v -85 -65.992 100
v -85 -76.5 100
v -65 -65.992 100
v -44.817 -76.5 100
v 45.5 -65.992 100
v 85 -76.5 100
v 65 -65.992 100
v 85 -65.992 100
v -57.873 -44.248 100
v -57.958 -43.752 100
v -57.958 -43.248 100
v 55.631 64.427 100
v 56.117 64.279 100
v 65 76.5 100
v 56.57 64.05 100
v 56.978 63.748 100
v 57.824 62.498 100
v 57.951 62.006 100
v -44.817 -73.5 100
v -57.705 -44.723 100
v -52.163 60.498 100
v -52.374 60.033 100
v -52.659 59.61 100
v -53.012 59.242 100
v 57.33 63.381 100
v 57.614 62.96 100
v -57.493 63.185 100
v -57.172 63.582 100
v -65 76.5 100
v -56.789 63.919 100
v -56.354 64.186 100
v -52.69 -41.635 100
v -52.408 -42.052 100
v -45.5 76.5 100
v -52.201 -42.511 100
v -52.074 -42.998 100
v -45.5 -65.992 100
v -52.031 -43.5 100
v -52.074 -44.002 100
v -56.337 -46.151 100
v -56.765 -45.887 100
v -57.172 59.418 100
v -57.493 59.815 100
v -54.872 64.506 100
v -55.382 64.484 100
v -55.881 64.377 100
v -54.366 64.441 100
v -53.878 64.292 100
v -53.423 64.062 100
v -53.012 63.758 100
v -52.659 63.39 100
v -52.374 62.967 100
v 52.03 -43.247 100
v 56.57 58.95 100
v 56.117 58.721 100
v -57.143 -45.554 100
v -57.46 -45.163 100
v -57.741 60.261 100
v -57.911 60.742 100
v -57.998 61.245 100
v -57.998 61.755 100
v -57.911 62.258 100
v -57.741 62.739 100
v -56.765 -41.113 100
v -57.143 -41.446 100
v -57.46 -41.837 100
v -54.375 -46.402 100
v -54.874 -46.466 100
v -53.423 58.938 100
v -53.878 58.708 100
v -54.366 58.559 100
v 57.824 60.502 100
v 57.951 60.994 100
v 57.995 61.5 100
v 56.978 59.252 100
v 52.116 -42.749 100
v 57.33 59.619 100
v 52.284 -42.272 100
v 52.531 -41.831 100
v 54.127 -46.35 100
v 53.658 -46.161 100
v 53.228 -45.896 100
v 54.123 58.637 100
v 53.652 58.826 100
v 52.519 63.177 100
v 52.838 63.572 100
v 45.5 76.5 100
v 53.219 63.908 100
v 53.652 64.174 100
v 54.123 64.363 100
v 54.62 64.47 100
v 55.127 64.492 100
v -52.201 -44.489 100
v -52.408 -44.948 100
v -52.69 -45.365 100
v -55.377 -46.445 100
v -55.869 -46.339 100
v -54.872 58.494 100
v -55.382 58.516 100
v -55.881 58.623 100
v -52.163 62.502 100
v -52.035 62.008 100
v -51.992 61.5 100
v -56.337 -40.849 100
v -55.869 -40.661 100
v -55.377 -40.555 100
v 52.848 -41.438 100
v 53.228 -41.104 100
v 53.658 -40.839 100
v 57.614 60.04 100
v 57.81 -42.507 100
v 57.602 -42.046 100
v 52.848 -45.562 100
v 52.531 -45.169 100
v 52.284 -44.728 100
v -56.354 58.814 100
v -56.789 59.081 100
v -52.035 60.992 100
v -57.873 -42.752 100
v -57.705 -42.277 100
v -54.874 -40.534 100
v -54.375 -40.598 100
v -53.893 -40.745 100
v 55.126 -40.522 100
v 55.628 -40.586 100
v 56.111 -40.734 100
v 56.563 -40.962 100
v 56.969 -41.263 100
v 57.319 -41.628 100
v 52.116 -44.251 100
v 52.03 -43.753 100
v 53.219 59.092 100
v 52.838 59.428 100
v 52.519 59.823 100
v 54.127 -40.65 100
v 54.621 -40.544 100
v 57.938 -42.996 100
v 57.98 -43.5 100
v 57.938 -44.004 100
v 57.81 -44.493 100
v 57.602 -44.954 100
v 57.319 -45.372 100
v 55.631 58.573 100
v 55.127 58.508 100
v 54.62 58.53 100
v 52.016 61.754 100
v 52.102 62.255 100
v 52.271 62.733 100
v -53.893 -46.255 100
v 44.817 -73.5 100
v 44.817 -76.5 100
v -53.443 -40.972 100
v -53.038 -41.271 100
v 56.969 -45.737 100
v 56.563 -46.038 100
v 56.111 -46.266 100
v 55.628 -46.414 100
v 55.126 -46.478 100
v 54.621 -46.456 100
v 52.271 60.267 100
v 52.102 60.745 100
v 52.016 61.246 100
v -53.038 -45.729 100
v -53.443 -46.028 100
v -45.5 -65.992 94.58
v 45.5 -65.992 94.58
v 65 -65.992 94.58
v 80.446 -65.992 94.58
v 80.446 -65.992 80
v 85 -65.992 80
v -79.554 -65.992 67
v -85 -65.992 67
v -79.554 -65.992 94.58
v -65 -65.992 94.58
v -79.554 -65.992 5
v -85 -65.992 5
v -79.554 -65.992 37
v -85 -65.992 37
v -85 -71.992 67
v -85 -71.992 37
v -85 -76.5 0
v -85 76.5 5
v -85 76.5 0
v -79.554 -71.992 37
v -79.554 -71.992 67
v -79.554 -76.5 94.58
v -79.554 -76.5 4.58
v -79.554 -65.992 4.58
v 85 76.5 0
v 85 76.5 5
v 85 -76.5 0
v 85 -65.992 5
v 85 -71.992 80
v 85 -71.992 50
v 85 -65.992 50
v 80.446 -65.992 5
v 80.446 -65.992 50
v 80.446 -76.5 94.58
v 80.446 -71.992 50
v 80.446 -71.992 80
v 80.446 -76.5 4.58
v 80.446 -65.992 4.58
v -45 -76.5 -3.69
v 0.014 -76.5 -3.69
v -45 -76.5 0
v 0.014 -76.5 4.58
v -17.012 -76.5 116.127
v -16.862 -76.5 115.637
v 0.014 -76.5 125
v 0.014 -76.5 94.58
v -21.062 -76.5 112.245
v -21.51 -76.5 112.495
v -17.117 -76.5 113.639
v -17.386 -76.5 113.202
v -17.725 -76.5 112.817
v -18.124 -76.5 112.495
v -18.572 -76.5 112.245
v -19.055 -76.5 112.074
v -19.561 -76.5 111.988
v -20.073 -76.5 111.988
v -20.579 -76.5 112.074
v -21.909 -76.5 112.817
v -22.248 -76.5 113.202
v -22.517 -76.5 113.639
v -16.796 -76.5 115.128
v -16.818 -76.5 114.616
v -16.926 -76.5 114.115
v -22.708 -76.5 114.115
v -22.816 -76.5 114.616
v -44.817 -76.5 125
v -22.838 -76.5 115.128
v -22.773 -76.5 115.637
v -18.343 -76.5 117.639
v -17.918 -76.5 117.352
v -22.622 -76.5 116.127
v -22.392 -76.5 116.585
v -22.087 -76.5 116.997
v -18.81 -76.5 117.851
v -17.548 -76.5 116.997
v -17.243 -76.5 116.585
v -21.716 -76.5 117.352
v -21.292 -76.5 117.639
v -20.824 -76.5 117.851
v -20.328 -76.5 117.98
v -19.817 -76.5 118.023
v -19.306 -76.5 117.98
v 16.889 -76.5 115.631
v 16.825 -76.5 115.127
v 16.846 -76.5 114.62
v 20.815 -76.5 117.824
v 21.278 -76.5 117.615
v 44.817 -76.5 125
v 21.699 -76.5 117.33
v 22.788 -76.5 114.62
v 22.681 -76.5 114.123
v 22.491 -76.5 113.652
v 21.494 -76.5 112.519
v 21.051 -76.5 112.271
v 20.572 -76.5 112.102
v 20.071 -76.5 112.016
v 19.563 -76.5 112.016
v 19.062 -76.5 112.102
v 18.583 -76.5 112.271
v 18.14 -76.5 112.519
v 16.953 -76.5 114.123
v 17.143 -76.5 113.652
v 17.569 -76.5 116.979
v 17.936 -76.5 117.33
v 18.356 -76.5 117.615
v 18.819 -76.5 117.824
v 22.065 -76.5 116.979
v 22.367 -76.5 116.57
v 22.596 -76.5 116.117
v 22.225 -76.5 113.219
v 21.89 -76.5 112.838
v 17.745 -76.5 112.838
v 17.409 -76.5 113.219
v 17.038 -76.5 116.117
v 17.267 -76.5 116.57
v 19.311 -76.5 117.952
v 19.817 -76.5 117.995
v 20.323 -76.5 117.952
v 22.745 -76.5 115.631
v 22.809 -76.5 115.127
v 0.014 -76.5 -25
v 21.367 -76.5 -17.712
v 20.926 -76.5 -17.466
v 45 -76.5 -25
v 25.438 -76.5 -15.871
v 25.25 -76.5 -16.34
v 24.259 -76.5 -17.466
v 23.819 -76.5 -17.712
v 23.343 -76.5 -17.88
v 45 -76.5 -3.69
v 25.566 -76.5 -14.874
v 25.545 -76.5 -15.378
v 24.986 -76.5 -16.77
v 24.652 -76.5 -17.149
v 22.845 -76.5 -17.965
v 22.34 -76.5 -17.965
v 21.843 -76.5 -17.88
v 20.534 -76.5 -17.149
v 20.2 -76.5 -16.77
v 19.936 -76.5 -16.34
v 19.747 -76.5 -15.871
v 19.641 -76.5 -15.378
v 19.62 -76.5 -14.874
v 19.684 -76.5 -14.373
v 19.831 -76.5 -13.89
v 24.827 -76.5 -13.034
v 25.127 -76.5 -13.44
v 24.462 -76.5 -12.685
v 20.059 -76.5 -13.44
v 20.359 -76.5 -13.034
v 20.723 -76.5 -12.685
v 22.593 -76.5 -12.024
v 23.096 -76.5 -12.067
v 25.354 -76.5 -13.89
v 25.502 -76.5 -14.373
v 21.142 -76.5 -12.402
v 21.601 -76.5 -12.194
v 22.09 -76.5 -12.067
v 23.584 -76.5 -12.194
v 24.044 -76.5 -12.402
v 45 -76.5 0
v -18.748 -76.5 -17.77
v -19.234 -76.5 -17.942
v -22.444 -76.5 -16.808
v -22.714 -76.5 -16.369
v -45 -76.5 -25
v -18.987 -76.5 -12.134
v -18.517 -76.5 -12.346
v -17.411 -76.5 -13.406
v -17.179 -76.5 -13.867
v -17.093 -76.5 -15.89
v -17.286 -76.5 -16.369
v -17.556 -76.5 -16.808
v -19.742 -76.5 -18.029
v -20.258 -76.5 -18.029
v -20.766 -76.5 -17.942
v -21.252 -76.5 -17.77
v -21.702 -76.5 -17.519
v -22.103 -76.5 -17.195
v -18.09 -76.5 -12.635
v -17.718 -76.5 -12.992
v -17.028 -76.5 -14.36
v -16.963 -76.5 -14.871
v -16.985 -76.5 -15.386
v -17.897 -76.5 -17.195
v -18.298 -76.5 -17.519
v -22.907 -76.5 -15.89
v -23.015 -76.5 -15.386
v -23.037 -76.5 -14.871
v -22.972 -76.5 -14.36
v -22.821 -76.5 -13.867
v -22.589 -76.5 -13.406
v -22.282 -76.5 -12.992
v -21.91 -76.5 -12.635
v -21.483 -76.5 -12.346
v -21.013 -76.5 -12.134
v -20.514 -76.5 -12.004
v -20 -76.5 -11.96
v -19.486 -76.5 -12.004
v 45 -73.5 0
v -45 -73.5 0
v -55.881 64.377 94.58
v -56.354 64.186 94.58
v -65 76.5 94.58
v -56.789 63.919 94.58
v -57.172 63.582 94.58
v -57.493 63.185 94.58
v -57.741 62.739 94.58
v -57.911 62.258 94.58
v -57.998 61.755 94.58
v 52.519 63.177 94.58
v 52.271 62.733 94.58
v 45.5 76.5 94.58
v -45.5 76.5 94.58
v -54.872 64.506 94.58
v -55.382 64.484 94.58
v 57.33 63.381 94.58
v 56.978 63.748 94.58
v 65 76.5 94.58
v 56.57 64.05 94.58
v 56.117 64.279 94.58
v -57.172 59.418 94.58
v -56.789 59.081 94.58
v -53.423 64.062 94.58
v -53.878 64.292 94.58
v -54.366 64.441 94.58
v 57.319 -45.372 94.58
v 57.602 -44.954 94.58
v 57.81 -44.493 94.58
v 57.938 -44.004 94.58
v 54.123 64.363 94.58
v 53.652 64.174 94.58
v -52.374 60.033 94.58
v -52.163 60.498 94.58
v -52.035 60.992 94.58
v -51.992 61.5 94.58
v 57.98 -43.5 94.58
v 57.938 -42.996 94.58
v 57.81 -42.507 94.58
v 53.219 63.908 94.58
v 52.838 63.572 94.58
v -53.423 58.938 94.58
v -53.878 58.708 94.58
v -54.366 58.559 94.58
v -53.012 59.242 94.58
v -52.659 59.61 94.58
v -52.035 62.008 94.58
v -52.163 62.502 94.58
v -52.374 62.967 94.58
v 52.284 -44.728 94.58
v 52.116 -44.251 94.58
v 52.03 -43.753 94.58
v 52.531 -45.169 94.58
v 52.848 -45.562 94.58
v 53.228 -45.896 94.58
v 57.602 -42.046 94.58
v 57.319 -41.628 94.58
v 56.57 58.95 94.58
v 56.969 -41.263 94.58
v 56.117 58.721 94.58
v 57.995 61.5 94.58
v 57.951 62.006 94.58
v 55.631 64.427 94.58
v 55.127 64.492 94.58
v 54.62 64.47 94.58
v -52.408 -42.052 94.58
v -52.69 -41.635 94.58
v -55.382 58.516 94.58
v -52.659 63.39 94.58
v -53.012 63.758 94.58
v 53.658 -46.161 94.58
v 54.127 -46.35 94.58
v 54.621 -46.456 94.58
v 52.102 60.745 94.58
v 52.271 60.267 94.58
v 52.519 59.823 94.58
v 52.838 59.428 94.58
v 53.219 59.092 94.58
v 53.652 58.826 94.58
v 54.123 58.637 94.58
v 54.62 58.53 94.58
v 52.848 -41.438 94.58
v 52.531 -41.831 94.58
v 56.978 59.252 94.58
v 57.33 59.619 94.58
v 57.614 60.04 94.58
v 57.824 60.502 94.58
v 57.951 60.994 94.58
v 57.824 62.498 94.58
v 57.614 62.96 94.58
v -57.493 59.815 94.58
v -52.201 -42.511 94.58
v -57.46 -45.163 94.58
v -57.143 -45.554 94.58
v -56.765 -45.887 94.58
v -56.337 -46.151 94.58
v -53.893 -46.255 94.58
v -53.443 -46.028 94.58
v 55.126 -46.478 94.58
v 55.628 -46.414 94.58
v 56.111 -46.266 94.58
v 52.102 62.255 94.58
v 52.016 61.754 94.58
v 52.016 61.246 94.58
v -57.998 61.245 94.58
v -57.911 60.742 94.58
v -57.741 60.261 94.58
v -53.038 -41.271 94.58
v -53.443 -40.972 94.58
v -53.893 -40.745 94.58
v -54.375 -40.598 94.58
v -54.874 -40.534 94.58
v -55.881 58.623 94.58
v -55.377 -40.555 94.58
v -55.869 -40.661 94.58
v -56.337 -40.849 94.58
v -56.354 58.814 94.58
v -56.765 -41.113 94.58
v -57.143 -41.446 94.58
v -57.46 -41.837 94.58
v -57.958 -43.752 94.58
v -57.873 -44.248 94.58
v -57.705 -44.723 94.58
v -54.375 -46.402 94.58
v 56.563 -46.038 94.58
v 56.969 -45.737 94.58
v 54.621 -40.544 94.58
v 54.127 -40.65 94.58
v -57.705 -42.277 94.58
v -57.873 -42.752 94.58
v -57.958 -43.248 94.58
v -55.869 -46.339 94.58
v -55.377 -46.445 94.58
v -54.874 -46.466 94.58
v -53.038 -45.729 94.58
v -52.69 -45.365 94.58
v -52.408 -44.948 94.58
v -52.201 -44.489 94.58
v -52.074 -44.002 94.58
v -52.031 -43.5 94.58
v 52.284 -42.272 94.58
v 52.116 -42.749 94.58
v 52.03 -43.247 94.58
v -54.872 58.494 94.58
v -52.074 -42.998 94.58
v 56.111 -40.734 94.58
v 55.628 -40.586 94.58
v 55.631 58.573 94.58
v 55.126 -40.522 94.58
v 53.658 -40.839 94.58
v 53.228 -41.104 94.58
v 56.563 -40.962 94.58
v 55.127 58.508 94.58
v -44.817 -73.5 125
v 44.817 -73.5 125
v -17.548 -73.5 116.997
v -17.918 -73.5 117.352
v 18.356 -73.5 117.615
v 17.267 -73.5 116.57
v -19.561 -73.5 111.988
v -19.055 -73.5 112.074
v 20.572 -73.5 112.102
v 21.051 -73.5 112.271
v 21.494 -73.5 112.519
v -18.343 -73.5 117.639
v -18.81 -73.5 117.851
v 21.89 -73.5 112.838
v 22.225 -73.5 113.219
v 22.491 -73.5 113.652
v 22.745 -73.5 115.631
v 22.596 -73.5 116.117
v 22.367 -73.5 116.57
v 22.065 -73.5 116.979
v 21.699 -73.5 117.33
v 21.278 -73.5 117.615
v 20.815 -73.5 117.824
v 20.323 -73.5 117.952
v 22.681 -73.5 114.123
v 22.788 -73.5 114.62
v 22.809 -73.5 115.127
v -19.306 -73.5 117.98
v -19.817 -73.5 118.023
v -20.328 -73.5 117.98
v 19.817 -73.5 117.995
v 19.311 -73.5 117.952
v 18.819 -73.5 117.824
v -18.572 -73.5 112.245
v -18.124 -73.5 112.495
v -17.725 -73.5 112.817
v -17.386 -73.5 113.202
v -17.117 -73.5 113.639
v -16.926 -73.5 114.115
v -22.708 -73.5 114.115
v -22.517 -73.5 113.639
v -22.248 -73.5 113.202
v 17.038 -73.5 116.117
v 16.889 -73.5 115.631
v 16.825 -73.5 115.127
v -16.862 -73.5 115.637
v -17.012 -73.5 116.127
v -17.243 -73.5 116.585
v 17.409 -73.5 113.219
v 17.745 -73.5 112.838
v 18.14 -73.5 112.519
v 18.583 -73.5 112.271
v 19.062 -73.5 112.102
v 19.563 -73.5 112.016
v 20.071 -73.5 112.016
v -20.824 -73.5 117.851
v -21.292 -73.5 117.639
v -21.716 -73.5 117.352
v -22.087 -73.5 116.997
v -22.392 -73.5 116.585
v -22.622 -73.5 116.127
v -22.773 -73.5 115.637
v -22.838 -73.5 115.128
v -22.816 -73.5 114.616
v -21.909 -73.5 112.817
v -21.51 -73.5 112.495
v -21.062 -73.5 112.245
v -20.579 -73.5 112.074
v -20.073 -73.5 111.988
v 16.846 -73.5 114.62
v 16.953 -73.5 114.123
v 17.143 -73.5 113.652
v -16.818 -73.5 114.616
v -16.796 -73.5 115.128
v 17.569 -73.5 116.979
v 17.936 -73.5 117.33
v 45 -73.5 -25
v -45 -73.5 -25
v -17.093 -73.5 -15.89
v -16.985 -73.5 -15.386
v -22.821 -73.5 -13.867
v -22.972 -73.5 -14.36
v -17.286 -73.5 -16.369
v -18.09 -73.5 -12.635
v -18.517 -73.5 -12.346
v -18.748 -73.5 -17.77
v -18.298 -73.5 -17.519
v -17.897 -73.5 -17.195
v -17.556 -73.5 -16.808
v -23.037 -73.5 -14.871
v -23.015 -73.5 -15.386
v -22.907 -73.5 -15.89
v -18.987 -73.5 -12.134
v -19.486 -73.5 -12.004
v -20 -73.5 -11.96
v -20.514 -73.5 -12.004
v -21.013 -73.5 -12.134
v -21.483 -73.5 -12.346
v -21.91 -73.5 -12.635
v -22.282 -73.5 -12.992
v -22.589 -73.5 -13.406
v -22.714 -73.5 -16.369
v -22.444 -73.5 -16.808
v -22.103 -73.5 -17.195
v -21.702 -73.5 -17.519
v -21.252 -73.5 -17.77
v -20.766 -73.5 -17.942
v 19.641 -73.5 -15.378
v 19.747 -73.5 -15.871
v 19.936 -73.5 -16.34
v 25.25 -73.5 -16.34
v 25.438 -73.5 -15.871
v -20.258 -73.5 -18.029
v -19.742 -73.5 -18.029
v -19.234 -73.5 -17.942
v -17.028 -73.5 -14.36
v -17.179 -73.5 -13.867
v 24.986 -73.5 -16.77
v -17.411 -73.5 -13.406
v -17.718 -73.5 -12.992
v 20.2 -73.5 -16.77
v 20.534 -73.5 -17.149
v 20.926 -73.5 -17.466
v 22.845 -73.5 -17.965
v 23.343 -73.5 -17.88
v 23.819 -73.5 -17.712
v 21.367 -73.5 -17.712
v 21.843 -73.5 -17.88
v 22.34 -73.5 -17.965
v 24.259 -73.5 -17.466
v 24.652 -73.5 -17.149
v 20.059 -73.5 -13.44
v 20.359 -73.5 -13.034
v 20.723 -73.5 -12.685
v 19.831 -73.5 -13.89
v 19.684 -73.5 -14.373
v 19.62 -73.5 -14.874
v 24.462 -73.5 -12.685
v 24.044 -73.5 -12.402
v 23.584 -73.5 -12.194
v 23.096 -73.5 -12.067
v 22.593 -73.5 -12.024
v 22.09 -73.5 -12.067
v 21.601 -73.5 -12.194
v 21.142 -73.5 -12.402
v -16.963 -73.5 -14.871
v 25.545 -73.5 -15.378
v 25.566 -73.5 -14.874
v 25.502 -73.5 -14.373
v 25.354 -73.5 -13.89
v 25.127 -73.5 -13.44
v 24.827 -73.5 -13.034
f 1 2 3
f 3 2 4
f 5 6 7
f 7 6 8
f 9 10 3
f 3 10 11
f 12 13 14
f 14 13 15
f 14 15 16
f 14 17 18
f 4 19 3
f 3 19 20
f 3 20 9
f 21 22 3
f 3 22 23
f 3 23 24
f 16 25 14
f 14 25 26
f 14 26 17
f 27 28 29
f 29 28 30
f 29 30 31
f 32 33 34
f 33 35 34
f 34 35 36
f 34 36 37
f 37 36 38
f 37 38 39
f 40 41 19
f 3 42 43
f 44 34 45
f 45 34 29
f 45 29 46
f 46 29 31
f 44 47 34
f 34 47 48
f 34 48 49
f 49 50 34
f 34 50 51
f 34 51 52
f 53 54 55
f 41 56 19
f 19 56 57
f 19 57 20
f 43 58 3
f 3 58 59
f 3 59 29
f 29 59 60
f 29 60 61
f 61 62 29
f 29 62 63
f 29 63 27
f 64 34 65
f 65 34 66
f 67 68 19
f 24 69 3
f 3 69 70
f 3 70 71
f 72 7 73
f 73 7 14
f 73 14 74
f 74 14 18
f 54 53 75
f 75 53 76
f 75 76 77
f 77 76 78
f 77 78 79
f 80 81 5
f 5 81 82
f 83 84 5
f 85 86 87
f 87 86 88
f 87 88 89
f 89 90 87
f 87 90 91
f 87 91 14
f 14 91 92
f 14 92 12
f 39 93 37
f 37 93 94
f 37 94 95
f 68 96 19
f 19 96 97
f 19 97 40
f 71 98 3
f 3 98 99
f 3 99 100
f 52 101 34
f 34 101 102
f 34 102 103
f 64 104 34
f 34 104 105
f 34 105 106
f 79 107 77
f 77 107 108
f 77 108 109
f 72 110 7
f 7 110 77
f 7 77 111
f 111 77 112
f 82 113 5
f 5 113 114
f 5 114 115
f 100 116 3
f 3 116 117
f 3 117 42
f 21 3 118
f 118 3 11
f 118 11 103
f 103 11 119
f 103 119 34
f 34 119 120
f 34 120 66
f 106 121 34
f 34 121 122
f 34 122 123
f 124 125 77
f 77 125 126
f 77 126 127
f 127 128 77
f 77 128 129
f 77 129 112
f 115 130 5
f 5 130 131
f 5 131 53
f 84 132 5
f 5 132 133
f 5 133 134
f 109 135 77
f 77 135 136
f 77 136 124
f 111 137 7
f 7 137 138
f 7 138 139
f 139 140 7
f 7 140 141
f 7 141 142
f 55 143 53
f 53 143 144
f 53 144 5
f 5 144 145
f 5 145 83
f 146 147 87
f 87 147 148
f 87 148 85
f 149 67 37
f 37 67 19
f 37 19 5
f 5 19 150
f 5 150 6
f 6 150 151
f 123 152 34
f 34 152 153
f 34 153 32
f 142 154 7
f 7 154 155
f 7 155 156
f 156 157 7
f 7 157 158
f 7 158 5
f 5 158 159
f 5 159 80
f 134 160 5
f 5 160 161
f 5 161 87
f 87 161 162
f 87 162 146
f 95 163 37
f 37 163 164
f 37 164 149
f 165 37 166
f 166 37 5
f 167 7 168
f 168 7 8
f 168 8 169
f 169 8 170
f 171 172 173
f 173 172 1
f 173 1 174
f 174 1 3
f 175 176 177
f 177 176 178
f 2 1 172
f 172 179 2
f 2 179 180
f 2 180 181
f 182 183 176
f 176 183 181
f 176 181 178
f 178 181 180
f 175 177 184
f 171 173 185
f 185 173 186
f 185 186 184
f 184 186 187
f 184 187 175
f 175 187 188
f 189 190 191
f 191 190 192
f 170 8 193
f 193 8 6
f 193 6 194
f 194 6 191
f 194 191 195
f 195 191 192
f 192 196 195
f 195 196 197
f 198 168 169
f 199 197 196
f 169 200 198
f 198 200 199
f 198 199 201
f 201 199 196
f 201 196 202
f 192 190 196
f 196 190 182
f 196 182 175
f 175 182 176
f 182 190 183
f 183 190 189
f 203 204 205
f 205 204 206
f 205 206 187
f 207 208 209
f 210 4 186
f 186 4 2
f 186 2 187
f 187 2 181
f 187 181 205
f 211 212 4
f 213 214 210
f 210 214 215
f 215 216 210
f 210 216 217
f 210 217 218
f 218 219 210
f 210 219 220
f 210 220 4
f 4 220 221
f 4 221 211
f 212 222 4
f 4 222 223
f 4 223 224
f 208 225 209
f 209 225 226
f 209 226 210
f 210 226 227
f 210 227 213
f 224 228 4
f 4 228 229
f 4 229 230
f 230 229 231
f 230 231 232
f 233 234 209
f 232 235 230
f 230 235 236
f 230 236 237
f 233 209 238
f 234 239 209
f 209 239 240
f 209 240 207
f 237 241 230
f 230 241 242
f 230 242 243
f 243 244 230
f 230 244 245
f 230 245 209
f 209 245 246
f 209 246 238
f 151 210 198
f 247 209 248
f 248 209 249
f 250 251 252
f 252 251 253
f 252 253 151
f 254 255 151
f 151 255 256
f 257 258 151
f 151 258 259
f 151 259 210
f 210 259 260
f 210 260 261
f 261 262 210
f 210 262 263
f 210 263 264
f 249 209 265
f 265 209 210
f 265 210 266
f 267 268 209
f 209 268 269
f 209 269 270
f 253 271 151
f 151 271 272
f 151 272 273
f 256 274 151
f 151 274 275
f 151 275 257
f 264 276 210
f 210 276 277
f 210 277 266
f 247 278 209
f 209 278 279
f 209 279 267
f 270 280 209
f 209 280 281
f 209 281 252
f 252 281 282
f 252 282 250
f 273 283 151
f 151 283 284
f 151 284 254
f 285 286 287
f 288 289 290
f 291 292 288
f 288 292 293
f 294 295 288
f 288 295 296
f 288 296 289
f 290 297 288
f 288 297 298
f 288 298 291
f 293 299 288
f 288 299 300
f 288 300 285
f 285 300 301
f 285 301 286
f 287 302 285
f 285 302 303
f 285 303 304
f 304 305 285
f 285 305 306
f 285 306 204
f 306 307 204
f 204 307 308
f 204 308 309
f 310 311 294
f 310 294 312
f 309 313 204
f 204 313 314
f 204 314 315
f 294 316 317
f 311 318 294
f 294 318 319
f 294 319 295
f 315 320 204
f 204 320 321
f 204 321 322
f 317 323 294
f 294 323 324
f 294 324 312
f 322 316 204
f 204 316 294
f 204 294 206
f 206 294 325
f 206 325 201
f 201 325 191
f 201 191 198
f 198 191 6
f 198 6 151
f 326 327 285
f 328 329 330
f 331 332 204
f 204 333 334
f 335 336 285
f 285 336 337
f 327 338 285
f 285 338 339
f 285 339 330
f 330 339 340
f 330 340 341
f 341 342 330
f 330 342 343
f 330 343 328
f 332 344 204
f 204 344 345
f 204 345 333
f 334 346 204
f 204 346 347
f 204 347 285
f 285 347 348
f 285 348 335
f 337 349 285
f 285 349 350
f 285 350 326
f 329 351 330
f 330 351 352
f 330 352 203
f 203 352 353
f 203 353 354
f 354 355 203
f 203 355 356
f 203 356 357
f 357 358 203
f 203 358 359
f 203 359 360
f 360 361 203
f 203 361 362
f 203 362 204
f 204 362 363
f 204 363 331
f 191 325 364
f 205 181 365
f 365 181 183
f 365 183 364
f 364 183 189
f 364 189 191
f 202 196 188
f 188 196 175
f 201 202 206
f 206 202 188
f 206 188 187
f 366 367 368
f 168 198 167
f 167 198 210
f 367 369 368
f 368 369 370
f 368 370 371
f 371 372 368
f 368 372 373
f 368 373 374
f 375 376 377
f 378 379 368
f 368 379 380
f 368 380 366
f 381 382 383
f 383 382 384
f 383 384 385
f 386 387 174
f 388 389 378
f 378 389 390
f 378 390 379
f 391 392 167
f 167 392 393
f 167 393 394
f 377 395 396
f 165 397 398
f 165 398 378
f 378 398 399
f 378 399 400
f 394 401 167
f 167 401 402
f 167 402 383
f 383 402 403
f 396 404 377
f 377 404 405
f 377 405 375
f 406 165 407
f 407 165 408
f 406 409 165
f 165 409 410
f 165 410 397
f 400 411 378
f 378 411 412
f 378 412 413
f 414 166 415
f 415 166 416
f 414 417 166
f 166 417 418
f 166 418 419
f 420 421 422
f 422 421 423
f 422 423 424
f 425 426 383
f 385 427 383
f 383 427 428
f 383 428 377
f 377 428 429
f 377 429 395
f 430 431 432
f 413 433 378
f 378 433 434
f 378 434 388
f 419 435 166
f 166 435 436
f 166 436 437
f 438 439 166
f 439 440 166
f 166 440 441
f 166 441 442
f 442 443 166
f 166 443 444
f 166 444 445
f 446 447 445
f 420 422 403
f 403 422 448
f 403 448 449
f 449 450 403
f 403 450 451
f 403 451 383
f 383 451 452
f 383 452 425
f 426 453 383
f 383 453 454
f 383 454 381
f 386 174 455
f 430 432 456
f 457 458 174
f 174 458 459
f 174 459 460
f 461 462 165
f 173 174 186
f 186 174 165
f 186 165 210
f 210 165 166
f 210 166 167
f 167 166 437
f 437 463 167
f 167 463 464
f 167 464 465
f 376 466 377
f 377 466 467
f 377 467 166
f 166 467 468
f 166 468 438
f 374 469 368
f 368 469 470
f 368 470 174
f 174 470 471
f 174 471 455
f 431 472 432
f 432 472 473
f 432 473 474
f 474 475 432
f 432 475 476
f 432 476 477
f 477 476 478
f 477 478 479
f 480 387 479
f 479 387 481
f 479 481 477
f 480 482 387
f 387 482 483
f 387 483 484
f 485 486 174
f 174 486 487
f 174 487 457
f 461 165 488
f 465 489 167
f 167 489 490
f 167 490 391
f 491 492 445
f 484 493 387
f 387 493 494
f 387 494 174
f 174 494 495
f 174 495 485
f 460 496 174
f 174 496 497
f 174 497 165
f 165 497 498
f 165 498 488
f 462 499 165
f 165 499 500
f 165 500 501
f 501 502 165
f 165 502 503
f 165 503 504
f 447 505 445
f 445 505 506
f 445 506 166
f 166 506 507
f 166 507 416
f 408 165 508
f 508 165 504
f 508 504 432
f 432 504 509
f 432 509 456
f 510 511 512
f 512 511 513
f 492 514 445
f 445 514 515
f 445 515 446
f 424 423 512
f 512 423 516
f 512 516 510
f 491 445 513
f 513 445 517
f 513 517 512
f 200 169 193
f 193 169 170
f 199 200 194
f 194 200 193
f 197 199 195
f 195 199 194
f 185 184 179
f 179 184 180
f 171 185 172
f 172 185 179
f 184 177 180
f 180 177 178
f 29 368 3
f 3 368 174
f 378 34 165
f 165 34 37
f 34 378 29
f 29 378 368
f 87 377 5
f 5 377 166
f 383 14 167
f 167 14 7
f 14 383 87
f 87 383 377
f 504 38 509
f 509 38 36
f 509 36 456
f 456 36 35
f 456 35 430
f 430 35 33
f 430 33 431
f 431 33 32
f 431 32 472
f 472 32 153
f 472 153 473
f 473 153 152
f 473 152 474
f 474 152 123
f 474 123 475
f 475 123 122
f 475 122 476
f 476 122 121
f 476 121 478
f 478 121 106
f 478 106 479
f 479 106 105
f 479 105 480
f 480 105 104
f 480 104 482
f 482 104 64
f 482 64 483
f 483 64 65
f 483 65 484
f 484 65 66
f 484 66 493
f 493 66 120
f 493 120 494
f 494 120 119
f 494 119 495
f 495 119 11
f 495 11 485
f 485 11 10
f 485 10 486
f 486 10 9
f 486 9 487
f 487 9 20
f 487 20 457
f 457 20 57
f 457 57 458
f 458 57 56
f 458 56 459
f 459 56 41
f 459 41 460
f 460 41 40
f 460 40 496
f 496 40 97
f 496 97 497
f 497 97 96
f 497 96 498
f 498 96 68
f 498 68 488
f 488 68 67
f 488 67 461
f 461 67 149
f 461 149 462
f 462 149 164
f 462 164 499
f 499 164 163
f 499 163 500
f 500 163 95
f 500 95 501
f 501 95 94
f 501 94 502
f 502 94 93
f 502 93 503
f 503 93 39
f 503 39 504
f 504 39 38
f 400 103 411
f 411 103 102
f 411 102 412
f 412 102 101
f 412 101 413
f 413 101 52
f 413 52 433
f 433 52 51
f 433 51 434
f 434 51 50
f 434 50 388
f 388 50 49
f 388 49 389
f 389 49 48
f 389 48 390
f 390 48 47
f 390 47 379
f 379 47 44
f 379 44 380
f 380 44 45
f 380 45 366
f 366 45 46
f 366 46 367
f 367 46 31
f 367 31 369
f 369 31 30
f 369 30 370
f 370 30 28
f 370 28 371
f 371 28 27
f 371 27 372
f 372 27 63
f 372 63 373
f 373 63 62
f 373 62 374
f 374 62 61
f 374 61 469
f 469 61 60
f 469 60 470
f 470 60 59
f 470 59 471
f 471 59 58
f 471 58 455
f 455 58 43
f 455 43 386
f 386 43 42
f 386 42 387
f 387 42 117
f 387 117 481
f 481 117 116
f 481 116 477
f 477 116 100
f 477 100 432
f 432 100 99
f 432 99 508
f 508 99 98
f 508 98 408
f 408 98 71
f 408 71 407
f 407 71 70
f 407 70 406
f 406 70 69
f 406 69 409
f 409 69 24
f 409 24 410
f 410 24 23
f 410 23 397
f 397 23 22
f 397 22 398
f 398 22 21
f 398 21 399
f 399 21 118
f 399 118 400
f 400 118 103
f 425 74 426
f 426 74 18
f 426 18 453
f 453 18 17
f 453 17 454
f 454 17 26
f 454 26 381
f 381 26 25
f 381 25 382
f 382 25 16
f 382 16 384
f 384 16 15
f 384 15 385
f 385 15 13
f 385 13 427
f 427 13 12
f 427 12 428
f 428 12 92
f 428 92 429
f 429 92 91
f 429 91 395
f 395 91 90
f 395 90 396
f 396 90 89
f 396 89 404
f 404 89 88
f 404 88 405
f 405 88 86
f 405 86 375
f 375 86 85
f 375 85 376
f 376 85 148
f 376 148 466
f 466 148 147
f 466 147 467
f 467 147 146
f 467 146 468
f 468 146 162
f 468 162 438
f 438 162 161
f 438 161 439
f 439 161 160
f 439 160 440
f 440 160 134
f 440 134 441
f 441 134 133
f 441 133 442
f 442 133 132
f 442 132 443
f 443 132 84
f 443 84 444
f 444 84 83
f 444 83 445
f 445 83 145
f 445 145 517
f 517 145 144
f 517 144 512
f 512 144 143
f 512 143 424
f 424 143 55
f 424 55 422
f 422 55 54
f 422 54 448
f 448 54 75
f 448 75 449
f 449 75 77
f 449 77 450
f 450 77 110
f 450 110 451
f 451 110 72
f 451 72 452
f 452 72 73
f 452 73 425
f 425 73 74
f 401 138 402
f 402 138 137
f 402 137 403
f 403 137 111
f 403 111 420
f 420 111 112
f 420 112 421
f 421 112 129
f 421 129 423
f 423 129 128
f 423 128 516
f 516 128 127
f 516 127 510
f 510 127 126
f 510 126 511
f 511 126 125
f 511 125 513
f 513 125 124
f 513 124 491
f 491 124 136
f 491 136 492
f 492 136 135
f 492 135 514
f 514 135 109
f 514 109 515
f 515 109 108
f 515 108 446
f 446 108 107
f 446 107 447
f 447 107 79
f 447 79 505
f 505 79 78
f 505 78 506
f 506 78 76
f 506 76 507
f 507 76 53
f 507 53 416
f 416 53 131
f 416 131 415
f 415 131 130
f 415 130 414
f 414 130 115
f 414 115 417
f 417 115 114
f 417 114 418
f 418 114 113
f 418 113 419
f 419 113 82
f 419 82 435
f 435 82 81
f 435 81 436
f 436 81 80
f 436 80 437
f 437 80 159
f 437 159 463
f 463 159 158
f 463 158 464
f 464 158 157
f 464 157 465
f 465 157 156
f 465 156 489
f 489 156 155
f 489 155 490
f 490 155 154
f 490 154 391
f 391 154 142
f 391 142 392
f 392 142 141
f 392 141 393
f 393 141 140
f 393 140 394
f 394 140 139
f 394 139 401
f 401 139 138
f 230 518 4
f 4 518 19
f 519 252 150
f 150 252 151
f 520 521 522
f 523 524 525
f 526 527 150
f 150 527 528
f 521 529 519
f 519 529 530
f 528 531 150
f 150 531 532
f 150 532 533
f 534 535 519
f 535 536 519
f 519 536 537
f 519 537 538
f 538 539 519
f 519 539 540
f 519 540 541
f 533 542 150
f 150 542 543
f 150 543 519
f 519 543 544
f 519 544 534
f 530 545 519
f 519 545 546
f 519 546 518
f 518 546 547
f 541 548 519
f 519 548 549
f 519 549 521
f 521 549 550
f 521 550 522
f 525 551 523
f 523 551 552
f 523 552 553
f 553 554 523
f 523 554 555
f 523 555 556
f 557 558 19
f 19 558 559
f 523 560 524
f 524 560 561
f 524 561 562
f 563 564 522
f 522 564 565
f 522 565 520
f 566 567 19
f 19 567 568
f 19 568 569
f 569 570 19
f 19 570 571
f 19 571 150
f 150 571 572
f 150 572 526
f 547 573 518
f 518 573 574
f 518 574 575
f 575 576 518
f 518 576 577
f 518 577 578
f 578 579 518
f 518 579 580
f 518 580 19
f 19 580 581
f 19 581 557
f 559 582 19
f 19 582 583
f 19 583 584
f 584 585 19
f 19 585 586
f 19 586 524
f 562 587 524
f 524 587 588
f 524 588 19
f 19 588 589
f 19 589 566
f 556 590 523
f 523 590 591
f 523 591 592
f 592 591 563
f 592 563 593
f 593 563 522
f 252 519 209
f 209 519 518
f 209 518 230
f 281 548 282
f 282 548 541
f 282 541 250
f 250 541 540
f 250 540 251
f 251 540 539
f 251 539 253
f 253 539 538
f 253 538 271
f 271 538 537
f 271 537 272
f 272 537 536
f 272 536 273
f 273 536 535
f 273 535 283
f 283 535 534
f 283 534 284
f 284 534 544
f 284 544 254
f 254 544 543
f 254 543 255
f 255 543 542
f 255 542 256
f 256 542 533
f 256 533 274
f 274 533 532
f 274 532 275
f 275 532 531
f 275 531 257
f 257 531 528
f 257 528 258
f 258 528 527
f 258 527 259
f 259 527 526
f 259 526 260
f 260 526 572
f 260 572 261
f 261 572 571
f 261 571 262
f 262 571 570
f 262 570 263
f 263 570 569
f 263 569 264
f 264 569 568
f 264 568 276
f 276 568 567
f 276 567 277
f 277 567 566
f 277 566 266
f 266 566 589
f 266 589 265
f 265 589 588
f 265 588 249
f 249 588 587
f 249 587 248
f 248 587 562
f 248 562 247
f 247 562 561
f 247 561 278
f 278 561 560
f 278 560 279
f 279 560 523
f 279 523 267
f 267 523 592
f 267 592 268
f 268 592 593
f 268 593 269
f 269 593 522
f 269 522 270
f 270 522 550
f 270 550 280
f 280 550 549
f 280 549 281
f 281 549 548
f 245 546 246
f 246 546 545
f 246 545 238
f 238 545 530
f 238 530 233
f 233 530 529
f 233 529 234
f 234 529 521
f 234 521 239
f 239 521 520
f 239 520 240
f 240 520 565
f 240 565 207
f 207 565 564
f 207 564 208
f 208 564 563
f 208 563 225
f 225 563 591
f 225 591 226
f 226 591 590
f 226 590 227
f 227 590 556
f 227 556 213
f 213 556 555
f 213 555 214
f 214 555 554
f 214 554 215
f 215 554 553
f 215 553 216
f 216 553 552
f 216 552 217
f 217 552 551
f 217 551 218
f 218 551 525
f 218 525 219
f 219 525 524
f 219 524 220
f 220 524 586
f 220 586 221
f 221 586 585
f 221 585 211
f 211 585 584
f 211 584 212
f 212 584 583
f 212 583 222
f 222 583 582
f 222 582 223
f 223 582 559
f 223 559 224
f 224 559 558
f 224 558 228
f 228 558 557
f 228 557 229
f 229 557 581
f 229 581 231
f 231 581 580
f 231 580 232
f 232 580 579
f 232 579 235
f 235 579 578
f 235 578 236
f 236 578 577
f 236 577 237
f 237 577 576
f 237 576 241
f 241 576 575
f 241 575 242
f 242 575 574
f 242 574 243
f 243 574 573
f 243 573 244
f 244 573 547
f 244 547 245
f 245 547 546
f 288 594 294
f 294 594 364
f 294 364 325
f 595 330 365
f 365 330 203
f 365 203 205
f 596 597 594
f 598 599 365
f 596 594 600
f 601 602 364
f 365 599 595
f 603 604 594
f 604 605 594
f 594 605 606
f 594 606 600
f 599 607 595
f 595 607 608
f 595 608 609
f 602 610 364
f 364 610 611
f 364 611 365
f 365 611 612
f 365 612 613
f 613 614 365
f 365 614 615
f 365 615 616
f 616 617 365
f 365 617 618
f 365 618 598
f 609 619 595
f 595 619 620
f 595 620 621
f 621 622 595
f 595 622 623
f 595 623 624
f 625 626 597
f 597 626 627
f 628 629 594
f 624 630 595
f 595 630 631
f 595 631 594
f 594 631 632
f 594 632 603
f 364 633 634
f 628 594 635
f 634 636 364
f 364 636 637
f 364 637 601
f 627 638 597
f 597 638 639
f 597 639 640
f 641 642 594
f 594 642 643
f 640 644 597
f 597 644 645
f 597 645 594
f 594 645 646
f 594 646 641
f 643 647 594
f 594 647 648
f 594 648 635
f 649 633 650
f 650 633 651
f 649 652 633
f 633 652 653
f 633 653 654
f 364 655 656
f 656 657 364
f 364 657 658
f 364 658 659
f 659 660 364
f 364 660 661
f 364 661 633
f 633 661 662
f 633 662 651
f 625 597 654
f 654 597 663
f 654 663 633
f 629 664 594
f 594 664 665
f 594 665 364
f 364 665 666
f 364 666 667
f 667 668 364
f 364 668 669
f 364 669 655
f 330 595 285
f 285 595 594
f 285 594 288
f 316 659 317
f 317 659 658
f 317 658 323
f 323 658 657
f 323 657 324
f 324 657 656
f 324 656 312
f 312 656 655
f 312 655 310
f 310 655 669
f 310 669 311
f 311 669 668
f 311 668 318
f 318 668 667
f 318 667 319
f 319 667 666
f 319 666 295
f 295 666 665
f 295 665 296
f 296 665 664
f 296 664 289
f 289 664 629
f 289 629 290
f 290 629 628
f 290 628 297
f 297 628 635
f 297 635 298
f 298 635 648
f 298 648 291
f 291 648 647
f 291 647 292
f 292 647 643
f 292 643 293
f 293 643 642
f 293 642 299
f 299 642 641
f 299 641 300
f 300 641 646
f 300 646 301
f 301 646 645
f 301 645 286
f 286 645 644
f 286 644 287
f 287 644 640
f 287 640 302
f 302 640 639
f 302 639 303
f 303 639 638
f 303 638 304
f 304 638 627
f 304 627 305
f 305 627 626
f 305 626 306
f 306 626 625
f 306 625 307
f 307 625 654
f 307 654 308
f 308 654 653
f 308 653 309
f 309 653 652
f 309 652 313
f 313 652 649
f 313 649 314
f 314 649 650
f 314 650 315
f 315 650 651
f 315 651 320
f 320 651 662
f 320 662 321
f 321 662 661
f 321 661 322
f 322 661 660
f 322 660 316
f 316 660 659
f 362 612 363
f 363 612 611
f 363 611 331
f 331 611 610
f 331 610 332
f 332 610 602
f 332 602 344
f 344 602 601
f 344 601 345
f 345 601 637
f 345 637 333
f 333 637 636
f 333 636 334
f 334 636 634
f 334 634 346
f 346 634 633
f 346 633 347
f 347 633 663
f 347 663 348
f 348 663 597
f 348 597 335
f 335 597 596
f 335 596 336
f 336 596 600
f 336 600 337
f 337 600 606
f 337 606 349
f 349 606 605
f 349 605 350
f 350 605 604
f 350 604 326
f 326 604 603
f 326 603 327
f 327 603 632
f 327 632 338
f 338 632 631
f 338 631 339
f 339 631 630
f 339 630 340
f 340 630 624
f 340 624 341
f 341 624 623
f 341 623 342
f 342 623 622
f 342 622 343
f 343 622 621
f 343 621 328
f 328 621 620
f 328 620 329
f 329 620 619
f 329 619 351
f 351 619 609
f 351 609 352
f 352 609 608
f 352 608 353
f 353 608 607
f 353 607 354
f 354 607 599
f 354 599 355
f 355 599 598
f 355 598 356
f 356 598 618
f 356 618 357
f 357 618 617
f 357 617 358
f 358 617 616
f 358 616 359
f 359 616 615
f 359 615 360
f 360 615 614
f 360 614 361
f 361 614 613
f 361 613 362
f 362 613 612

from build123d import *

# Parameters (mm, degrees)
SKETCH2_W                = 170
SKETCH2_H                = 153
BOSS_EXTRUDE2_DEPTH      = 5
BOSS_EXTRUDE3_DEPTH      = 85
BOSS_EXTRUDE3_DEPTH_BACK = 85
SKETCH5_W                = 95
SKETCH5_H                = 10.507653329
SKETCH6_W                = 160
SKETCH6_H                = 90
CUT_EXTRUDE1_DEPTH       = 194.724208244
CUT_EXTRUDE3_DEPTH       = 212.54727604
CUT_EXTRUDE3_DEPTH_BACK  = 6
SKETCH7_W                = 30
SKETCH7_H                = 6
CUT_EXTRUDE4_DEPTH       = 10
CUT_EXTRUDE4_DEPTH_BACK  = 6
SKETCH12_W               = 30
SKETCH12_H               = 6
SKETCH26_W               = 19.5
SKETCH26_H               = 5.419548412
BOSS_EXTRUDE5_DEPTH      = 142.492347
SKETCH27_R               = 2.968954814
SKETCH27_R_2             = 3.008499796
SKETCH27_R_3             = 2.994560416
SKETCH27_R_4             = 2.980489199
CUT_EXTRUDE5_DEPTH       = 10
SKETCH31_W               = 89.634159614
SKETCH31_H               = 3
BOSS_EXTRUDE7_DEPTH      = 25
SKETCH32_R               = 3.023319041
SKETCH32_R_2             = 2.995093442
CUT_EXTRUDE7_DEPTH       = 25
SKETCH34_W               = 90
SKETCH34_H               = 3
BOSS_EXTRUDE8_DEPTH      = 25
SKETCH35_R               = 3.039881536
SKETCH35_R_2             = 2.976011356
CUT_EXTRUDE8_DEPTH       = 213.955394622


with BuildPart() as part:
    # Sketch2 → Boss-Extrude2 (new body)
    with BuildSketch(Plane.XY):
        Rectangle(SKETCH2_W, SKETCH2_H)
    extrude(amount=BOSS_EXTRUDE2_DEPTH)

    # Sketch5 → Boss-Extrude3 (add, two sides: drawn at the far end of the back side and taken through both)
    with BuildSketch(Plane(origin=(0, 0, 0), x_dir=(0, 0, -1), z_dir=(1, 0, 0)).offset(-BOSS_EXTRUDE3_DEPTH_BACK)):
        with Locations((-52.5, -71.246173336)):
            Rectangle(SKETCH5_W, SKETCH5_H)
    extrude(amount=BOSS_EXTRUDE3_DEPTH + BOSS_EXTRUDE3_DEPTH_BACK)

    # Sketch6 → Cut-Extrude1 (cut, through all)
    with BuildSketch(Plane(origin=(0, -65.992346671, 0), x_dir=(1, 0, 0), z_dir=(0, 1, 0))):
        with Locations((0.445660274, -49.580451588)):
            Rectangle(SKETCH6_W, SKETCH6_H)
    extrude(amount=-CUT_EXTRUDE1_DEPTH, mode=Mode.SUBTRACT)

    # Sketch7 → Cut-Extrude3 (cut, two sides: drawn at the far end of the back side and taken through both)
    with BuildSketch(Plane(origin=(85, 0, 0), x_dir=(0, 0, -1), z_dir=(1, 0, 0)).offset(-CUT_EXTRUDE3_DEPTH_BACK)):
        with Locations((-65, -68.992346671)):
            Rectangle(SKETCH7_W, SKETCH7_H)
    extrude(amount=CUT_EXTRUDE3_DEPTH + CUT_EXTRUDE3_DEPTH_BACK, mode=Mode.SUBTRACT)

    # Sketch12 → Cut-Extrude4 (cut, two sides: drawn at the far end of the back side and taken through both)
    with BuildSketch(Plane.ZY.offset(85).offset(-CUT_EXTRUDE4_DEPTH_BACK)):
        with Locations((52, -68.992346671)):
            Rectangle(SKETCH12_W, SKETCH12_H)
    extrude(amount=CUT_EXTRUDE4_DEPTH + CUT_EXTRUDE4_DEPTH_BACK, mode=Mode.SUBTRACT)

    # Sketch26 → Boss-Extrude5 (add, through all)
    with BuildSketch(Plane(origin=(0, -65.992346671, 0), x_dir=(1, 0, 0), z_dir=(0, 1, 0))):
        with Locations((-55.25, -97.290225794)):
            Rectangle(SKETCH26_W, SKETCH26_H)
        with Locations((55.25, -97.290225794)):
            Rectangle(SKETCH26_W, SKETCH26_H)
    extrude(amount=BOSS_EXTRUDE5_DEPTH)

    # Sketch27 → Cut-Extrude5 (cut)
    with BuildSketch(Plane.XY.offset(100)):
        with Locations((-55, -43.5)):
            Circle(SKETCH27_R)
        with Locations((-55, 61.5)):
            Circle(SKETCH27_R_2)
        with Locations((55, 61.5)):
            Circle(SKETCH27_R_3)
        with Locations((55, -43.5)):
            Circle(SKETCH27_R_4)
    extrude(amount=-CUT_EXTRUDE5_DEPTH, mode=Mode.SUBTRACT)

    # Sketch31 → Boss-Extrude7 (add)
    with BuildSketch(Plane.XY.offset(100)):
        with Locations((0, -75)):
            Rectangle(SKETCH31_W, SKETCH31_H)
    extrude(amount=BOSS_EXTRUDE7_DEPTH)

    # Sketch32 → Cut-Extrude7 (cut)
    with BuildSketch(Plane(origin=(0, -73.5, 0), x_dir=(1, 0, 0), z_dir=(0, 1, 0))):
        with Locations(Location((-19.817079807, -115, 0), (0, 0, 270))):
            Circle(SKETCH32_R)
        with Locations(Location((19.817079807, -115, 0), (0, 0, 270))):
            Circle(SKETCH32_R_2)
    extrude(amount=-CUT_EXTRUDE7_DEPTH, mode=Mode.SUBTRACT)

    # Sketch34 → Boss-Extrude8 (add)
    with BuildSketch(Plane(origin=(0, 0, 0), x_dir=(-1, 0, 0), z_dir=(0, 0, -1))):
        with Locations((0, -75)):
            Rectangle(SKETCH34_W, SKETCH34_H)
    extrude(amount=BOSS_EXTRUDE8_DEPTH)

    # Sketch35 → Cut-Extrude8 (cut, through all)
    with BuildSketch(Plane(origin=(0, -73.5, 0), x_dir=(1, 0, 0), z_dir=(0, 1, 0))):
        with Locations(Location((-20, 15, 0), (0, 0, 270))):
            Circle(SKETCH35_R)
        with Locations(Location((22.592886771, 15, 0), (0, 0, 270))):
            Circle(SKETCH35_R_2)
    extrude(amount=-CUT_EXTRUDE8_DEPTH, mode=Mode.SUBTRACT)


solid = part.part
